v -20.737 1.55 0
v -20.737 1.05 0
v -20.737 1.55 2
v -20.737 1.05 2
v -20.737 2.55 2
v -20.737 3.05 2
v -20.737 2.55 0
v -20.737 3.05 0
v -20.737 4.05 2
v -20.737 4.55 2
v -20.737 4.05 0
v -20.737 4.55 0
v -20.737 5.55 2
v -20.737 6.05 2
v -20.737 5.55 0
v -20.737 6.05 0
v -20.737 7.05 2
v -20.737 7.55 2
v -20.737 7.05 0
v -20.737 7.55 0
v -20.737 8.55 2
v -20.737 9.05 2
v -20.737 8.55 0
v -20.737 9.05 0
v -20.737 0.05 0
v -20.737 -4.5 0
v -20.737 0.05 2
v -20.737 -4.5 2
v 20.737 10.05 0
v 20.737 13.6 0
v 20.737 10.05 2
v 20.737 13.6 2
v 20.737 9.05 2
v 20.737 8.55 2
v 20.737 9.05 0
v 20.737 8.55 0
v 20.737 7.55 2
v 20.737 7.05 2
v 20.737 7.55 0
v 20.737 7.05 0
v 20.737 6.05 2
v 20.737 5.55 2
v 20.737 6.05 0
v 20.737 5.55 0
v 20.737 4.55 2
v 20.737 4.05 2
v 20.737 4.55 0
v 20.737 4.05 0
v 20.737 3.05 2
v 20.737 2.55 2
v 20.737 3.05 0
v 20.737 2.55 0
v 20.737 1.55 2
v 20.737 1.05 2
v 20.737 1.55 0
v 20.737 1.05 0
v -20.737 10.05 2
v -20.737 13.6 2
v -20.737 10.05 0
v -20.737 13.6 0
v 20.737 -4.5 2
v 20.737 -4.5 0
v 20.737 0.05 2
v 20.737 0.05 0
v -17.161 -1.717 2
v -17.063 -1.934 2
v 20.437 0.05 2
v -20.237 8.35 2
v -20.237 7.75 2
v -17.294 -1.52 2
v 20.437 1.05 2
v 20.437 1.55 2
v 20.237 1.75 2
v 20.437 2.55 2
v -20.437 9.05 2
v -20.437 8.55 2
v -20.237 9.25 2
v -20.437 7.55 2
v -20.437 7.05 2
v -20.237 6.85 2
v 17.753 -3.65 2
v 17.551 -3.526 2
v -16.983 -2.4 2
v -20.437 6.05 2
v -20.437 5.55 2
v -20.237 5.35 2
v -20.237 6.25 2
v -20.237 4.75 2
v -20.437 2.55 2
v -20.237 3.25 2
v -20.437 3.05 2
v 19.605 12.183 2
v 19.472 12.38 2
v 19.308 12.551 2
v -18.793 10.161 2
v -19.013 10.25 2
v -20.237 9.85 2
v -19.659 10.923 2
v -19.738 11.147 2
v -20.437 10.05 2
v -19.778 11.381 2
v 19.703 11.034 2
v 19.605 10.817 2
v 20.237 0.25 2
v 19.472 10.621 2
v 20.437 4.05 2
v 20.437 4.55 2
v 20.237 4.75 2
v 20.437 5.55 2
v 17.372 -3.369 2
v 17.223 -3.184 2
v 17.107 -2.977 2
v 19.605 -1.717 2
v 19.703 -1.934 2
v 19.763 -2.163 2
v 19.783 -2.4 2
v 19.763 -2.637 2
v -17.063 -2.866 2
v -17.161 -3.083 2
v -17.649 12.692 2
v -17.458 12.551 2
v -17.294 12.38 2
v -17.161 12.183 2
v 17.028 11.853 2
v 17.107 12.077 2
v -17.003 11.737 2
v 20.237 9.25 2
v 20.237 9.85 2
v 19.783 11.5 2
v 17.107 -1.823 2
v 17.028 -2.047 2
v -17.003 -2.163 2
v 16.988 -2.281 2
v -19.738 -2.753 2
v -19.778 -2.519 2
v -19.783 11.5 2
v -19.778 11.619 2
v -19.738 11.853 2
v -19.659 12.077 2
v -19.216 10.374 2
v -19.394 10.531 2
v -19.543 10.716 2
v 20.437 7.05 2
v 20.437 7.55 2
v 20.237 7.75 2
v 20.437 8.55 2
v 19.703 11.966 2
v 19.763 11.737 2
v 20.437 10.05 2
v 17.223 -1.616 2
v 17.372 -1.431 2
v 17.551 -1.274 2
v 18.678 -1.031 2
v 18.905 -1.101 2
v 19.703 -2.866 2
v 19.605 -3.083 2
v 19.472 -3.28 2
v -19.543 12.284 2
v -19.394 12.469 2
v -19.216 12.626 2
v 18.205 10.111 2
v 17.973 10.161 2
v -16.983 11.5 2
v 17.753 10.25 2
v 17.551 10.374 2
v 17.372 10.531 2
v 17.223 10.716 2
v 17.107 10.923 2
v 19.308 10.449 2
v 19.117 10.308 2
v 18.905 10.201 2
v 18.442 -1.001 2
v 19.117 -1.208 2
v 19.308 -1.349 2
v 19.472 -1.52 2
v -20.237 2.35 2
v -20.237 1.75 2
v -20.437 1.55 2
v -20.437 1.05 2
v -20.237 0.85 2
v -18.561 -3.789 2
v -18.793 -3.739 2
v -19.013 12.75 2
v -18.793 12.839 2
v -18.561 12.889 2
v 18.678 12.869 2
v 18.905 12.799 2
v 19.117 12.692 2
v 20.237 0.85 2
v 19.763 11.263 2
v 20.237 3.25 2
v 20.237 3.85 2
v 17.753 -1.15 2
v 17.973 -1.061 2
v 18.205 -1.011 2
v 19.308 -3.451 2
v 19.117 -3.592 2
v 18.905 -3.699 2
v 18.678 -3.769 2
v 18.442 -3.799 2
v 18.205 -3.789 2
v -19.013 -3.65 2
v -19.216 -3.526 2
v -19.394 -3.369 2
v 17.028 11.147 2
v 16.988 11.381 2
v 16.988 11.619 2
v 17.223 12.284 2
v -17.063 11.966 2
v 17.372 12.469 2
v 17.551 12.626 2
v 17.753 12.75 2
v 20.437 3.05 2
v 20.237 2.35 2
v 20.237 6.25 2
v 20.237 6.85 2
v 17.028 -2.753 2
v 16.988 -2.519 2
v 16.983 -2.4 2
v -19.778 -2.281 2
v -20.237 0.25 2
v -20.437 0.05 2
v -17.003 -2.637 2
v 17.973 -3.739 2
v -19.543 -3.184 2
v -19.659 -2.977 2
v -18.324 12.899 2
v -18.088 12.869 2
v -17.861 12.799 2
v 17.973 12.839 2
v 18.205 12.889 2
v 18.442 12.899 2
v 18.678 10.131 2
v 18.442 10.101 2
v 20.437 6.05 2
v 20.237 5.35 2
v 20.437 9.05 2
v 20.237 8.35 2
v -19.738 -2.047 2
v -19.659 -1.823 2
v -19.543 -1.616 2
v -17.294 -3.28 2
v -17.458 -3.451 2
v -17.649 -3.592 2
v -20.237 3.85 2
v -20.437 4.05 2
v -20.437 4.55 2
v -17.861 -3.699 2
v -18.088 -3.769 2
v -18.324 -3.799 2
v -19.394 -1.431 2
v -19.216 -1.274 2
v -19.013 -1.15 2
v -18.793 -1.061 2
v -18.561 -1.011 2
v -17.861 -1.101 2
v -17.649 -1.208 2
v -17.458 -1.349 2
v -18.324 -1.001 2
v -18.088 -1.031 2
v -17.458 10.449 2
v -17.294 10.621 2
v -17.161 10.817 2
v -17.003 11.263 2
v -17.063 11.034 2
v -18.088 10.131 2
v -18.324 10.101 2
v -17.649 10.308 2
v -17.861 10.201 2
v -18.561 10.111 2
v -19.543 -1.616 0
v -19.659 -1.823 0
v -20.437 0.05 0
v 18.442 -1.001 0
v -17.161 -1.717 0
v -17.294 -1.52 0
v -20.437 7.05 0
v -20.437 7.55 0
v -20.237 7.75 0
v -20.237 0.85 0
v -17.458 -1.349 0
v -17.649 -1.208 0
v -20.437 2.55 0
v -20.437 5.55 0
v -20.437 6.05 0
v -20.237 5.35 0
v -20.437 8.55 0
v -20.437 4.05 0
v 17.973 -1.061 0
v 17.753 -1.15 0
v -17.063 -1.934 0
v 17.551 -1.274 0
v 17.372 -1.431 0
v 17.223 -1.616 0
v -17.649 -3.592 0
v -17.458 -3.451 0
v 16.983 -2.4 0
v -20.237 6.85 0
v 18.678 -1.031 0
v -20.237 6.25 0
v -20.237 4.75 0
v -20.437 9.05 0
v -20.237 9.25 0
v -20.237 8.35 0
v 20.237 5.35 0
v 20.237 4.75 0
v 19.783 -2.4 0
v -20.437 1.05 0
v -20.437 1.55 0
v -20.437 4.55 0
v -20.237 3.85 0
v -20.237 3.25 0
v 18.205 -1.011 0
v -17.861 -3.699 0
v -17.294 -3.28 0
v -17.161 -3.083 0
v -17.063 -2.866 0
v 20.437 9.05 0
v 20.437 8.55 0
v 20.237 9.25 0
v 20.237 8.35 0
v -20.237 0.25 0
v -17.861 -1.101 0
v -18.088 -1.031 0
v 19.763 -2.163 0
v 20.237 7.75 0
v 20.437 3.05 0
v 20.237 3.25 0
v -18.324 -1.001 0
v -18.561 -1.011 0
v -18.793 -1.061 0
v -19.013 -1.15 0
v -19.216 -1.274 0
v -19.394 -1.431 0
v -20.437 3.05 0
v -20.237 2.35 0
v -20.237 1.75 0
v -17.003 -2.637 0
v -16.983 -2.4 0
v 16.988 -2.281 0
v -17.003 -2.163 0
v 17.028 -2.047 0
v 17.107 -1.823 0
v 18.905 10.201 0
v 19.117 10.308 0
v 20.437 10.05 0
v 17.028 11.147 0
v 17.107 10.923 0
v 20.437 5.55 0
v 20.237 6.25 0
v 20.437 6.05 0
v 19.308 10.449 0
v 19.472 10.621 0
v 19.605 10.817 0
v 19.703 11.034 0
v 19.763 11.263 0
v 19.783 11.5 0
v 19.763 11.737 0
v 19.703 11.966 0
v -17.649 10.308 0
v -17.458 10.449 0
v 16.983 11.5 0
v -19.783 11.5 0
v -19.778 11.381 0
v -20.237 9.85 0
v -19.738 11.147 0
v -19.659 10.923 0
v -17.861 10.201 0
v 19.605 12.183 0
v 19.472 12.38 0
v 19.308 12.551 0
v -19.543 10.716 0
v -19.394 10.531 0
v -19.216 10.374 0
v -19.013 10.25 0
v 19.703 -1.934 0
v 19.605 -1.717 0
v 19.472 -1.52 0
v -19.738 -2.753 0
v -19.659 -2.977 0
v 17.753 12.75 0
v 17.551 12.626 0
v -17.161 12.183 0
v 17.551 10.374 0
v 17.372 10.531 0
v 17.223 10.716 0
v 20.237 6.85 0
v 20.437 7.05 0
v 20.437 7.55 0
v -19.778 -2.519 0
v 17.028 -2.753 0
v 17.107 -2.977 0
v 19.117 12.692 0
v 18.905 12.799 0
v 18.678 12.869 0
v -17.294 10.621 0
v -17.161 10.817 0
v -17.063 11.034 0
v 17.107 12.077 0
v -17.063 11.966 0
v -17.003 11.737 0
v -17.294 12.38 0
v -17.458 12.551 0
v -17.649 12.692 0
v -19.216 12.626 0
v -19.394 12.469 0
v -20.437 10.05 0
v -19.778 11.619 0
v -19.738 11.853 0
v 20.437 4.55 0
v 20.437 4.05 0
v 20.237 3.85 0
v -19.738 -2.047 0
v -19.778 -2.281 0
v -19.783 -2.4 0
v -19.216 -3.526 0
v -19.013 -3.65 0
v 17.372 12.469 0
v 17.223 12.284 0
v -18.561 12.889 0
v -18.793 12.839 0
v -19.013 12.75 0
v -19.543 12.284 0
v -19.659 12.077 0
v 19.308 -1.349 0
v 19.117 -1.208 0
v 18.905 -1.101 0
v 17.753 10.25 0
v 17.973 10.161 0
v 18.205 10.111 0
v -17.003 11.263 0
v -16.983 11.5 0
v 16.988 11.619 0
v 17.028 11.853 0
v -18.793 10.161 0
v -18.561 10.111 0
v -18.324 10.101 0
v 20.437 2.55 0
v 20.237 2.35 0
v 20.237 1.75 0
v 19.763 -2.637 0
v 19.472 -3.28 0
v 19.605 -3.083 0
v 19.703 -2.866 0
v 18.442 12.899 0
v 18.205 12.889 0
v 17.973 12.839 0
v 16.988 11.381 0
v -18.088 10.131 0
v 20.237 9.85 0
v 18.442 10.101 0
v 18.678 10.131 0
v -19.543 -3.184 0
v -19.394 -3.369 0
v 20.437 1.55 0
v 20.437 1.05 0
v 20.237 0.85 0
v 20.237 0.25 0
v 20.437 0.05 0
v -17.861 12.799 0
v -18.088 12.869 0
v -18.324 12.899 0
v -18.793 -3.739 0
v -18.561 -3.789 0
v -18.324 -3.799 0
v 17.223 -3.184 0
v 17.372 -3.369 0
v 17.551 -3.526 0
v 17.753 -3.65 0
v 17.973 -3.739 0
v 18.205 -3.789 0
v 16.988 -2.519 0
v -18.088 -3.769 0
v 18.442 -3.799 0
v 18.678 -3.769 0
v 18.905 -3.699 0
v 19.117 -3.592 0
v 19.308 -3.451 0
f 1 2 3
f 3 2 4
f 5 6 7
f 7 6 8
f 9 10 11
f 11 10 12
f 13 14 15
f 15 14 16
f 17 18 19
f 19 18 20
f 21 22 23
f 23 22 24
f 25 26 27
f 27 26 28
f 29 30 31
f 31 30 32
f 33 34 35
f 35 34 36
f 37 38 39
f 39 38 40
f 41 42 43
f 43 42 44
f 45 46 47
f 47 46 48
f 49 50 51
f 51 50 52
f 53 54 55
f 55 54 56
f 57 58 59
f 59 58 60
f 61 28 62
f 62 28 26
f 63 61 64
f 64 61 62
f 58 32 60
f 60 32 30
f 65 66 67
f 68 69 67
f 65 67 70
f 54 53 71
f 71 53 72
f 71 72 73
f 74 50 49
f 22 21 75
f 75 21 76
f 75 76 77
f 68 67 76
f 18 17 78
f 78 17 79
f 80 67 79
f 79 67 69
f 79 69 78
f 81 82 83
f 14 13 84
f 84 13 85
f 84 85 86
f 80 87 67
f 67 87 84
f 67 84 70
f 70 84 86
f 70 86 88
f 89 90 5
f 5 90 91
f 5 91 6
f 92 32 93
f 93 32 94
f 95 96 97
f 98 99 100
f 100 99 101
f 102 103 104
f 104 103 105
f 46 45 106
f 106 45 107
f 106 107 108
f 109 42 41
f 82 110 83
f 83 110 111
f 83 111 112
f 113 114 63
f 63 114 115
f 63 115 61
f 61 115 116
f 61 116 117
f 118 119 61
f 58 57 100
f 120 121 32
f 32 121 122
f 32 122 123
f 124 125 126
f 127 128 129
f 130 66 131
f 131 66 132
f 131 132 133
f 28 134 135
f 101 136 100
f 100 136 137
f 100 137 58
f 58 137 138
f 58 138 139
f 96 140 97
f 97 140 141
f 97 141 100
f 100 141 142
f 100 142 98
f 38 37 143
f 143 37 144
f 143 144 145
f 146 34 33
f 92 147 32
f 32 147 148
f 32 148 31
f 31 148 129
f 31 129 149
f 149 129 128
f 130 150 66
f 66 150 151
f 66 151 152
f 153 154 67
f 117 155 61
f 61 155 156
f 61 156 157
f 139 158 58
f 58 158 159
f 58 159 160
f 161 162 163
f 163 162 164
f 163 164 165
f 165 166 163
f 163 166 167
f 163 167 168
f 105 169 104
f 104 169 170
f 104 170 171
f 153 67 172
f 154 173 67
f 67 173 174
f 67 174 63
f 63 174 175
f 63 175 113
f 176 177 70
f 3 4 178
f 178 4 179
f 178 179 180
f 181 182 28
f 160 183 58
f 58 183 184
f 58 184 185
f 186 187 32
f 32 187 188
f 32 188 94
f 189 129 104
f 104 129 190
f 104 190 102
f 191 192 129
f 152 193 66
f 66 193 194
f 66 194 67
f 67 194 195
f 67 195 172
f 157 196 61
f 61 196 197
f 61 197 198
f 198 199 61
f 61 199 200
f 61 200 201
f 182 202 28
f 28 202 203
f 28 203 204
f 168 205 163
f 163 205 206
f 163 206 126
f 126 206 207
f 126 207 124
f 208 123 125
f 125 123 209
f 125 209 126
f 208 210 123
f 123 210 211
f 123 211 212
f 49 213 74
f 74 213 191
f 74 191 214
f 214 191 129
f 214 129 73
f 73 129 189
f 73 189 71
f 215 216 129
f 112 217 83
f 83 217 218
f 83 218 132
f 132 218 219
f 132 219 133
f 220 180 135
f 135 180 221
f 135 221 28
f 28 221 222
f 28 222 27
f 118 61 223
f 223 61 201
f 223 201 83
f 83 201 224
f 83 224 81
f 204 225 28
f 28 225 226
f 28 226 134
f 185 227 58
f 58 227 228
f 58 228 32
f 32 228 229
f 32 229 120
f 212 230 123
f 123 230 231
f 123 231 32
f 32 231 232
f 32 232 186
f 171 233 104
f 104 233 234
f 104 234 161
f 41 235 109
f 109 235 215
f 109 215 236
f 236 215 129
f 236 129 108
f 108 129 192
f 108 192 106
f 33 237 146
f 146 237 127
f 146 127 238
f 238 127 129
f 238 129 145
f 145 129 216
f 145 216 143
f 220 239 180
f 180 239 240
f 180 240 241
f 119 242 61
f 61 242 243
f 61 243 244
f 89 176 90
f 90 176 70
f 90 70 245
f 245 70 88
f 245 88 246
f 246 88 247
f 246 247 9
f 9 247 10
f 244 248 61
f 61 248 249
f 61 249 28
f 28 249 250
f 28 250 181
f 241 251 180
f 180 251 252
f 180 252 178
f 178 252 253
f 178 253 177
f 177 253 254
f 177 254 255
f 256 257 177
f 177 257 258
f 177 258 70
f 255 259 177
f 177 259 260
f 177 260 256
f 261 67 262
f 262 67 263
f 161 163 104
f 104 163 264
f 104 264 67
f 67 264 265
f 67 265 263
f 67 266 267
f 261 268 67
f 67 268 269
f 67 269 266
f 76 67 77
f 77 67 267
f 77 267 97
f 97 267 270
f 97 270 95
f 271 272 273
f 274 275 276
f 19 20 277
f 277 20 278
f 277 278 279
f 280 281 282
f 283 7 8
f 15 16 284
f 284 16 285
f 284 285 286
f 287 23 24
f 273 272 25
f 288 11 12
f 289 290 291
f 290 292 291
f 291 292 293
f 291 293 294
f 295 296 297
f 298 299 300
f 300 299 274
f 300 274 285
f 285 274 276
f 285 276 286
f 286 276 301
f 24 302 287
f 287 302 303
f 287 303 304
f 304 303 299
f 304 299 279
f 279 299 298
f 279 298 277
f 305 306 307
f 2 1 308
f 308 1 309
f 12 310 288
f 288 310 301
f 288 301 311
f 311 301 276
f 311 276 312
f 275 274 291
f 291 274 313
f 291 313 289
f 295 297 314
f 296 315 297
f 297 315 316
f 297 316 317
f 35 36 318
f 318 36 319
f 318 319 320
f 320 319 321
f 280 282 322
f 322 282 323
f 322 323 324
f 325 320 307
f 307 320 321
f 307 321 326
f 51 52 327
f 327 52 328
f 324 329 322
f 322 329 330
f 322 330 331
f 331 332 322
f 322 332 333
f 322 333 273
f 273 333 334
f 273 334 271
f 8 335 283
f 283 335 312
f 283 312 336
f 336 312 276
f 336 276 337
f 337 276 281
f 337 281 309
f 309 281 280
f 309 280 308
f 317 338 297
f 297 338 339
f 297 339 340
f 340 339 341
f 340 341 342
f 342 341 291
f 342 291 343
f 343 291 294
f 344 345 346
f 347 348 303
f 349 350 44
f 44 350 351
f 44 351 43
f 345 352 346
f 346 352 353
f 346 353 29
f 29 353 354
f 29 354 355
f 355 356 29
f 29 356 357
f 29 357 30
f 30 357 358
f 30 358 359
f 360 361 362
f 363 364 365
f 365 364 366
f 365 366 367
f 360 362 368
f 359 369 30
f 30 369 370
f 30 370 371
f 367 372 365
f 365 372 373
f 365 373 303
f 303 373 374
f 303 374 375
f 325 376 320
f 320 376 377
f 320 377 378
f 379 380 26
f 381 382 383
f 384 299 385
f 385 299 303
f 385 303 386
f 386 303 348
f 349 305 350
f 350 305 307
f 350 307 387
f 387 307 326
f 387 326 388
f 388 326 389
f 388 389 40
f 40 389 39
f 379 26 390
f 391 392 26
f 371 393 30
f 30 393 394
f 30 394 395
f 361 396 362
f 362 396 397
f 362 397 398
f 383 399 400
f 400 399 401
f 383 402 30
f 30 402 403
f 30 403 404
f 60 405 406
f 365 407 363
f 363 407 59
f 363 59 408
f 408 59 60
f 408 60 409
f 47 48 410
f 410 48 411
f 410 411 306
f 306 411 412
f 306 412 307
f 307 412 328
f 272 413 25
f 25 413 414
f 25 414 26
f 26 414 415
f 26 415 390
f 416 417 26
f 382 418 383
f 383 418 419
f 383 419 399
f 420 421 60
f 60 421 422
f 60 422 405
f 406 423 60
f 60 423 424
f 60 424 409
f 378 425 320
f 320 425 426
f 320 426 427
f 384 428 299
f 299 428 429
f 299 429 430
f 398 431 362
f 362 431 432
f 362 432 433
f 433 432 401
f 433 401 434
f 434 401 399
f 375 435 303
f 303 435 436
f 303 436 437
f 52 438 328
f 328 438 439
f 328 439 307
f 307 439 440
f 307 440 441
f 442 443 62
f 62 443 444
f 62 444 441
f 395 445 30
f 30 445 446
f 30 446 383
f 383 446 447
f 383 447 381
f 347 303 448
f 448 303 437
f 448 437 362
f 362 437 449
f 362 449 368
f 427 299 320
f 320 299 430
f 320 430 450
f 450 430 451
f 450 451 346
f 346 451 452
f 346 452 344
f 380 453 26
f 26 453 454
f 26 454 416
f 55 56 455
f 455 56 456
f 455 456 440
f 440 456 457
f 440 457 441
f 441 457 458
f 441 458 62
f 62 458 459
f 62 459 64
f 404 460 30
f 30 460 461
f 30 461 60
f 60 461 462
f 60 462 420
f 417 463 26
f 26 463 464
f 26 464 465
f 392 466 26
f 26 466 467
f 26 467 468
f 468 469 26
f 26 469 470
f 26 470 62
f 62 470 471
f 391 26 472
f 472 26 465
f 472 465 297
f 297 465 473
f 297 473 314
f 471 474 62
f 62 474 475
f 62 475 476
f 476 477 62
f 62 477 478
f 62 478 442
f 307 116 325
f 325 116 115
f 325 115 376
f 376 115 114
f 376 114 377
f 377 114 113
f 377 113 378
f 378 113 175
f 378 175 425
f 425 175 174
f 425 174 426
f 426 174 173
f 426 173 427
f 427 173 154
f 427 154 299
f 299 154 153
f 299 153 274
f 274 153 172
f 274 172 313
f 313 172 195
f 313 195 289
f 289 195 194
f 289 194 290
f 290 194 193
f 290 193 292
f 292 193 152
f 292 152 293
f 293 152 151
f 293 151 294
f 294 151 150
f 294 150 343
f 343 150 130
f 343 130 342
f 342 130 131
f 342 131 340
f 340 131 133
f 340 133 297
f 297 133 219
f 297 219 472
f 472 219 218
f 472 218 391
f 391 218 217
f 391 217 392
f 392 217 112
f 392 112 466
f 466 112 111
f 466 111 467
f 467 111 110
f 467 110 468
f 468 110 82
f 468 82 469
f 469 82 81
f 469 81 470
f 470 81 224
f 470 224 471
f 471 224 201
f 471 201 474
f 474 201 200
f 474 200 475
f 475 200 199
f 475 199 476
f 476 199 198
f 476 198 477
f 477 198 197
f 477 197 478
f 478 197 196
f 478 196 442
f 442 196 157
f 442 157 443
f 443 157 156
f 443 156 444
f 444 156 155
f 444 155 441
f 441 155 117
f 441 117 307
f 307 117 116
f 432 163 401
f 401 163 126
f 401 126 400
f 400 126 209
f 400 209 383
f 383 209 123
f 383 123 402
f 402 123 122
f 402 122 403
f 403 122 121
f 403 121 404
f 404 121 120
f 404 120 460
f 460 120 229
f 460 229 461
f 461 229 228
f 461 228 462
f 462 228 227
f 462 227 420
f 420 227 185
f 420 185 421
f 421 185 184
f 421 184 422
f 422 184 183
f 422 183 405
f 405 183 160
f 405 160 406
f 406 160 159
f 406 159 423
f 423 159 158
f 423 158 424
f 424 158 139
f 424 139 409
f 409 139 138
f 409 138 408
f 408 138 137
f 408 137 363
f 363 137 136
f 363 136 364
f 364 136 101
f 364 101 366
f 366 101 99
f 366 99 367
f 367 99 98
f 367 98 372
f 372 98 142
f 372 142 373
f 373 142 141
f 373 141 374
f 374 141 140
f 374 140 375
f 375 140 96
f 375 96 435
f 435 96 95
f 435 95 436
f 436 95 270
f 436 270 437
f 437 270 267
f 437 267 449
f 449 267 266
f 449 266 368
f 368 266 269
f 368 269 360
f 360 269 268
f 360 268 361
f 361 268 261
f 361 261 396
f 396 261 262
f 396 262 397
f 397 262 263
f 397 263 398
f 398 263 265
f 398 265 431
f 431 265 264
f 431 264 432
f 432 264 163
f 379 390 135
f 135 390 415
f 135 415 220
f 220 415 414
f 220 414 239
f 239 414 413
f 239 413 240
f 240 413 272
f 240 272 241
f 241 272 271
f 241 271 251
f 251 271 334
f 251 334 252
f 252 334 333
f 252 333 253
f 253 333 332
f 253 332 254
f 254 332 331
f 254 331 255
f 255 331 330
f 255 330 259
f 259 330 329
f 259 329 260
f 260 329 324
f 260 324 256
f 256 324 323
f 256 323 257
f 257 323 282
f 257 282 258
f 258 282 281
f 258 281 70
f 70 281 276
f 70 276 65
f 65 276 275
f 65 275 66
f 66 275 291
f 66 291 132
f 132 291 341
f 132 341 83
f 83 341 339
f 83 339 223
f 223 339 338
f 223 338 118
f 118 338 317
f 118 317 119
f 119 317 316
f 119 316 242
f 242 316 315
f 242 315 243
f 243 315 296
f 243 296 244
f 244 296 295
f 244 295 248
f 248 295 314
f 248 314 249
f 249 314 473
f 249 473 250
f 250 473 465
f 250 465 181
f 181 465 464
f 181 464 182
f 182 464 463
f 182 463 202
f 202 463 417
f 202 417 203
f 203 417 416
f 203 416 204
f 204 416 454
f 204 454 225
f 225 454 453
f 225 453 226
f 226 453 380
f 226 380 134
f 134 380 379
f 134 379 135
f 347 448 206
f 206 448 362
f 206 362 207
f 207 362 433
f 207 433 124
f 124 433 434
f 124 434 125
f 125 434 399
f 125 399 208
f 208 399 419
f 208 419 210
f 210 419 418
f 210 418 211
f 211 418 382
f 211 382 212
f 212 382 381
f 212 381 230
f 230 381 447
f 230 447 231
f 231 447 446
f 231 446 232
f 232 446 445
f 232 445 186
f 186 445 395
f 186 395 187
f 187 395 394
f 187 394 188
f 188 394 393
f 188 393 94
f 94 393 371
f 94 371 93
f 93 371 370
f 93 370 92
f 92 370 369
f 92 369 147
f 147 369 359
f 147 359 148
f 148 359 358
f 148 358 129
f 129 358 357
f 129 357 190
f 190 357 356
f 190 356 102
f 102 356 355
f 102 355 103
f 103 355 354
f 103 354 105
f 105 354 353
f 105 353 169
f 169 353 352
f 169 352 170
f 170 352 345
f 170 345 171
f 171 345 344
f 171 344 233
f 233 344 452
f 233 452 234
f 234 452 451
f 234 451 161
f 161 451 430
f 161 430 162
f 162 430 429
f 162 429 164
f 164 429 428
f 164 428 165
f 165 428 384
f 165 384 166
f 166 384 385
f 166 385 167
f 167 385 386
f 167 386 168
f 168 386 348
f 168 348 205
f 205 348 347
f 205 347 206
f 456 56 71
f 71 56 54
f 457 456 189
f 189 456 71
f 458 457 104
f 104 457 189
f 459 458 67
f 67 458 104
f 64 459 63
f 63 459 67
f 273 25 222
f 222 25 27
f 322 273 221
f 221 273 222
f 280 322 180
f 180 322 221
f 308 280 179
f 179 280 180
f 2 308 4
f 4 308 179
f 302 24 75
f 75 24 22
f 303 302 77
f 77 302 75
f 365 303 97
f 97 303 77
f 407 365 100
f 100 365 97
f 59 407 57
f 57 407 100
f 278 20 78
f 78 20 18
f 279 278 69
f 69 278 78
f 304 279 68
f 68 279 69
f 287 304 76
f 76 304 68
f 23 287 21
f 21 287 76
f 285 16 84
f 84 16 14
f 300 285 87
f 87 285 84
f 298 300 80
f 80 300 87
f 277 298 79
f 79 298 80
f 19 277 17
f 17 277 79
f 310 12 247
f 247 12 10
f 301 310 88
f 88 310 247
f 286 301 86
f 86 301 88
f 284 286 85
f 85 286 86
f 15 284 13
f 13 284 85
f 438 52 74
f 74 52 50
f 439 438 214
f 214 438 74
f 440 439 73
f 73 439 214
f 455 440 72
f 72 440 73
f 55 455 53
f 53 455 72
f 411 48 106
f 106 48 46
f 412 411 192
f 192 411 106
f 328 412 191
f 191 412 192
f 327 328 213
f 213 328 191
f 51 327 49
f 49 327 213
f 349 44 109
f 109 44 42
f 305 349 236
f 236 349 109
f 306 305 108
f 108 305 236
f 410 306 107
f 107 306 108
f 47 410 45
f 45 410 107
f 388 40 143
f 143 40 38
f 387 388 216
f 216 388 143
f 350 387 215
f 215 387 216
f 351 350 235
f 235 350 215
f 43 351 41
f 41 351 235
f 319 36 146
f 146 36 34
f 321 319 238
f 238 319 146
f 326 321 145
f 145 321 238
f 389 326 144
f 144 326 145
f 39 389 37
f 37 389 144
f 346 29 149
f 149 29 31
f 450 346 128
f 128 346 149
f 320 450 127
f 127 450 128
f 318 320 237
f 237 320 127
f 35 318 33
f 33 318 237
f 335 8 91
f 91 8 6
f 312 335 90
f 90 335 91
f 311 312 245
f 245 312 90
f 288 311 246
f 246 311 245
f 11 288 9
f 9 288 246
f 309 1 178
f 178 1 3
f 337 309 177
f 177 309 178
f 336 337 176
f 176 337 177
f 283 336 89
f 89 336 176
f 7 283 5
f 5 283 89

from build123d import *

# Parameters (mm, degrees)
SKETCH_1_W          = 41.47467615
SKETCH_1_H          = 18.100023376
EXTRUDE_1_DEPTH     = 2
CUT_EXTRUDE_1_REACH = 26.88
SKETCH_2_R          = 1.4
CUT_EXTRUDE_2_REACH = 26.88


with BuildPart() as part:
    # 草图1 → 凸台-拉伸1 (new body)
    with BuildSketch(Plane.XY):
        with Locations((0, 4.550011688)):
            Rectangle(SKETCH_1_W, SKETCH_1_H)
    extrude(amount=EXTRUDE_1_DEPTH)

    # 草图2 → 切除-拉伸1 (cut, up to next)
    with BuildSketch(Plane.XY.offset(2), mode=Mode.PRIVATE) as cut_extrude_1_sk1:
        with Locations((-18.383061341, -2.4)):
            Circle(SKETCH_2_R)
    cut_extrude_1_tool1 = extrude(cut_extrude_1_sk1.sketch, amount=-CUT_EXTRUDE_1_REACH, mode=Mode.PRIVATE) & part.part
    # 草图2 → 切除-拉伸1 (cut, up to next)
    with BuildSketch(Plane.XY.offset(2), mode=Mode.PRIVATE) as cut_extrude_1_sk2:
        with Locations(Location((18.383061341, -2.4, 0), (0, 0, 180))):
            Circle(SKETCH_2_R)
    cut_extrude_1_tool2 = extrude(cut_extrude_1_sk2.sketch, amount=-CUT_EXTRUDE_1_REACH, mode=Mode.PRIVATE) & part.part
    # 草图2 → 切除-拉伸1 (cut, up to next)
    with BuildSketch(Plane.XY.offset(2), mode=Mode.PRIVATE) as cut_extrude_1_sk3:
        with Locations((18.383061341, 11.500023376)):
            Circle(SKETCH_2_R)
    cut_extrude_1_tool3 = extrude(cut_extrude_1_sk3.sketch, amount=-CUT_EXTRUDE_1_REACH, mode=Mode.PRIVATE) & part.part
    # 草图2 → 切除-拉伸1 (cut, up to next)
    with BuildSketch(Plane.XY.offset(2), mode=Mode.PRIVATE) as cut_extrude_1_sk4:
        with Locations(Location((-18.383061341, 11.500023376, 0), (0, 0, 180))):
            Circle(SKETCH_2_R)
    cut_extrude_1_tool4 = extrude(cut_extrude_1_sk4.sketch, amount=-CUT_EXTRUDE_1_REACH, mode=Mode.PRIVATE) & part.part
    add(cut_extrude_1_tool1.solids().sort_by_distance((-18.383061, -2.4, 2))[0], mode=Mode.SUBTRACT)
    add(cut_extrude_1_tool2.solids().sort_by_distance((18.383061, -2.4, 2))[0], mode=Mode.SUBTRACT)
    add(cut_extrude_1_tool3.solids().sort_by_distance((18.383061, 11.500023, 2))[0], mode=Mode.SUBTRACT)
    add(cut_extrude_1_tool4.solids().sort_by_distance((-18.383061, 11.500023, 2))[0], mode=Mode.SUBTRACT)

    # 草图3 → 切除-拉伸2 (cut, up to next)
    with BuildSketch(Plane(origin=(0, 0, 0), x_dir=(-1, 0, 0), z_dir=(0, 0, -1)), mode=Mode.PRIVATE) as cut_extrude_2_sk1:
        Polygon((-20.737338075, 1.050011688), (-20.437338075, 1.050011688), (-20.237338075, 0.850011688), (-20.237338075, 0.250011688), (-20.437338075, 0.050011688), (-20.737338075, 0.050011688), align=None)
    cut_extrude_2_tool1 = extrude(cut_extrude_2_sk1.sketch, amount=-CUT_EXTRUDE_2_REACH, mode=Mode.PRIVATE) & part.part
    # 草图3 → 切除-拉伸2 (cut, up to next)
    with BuildSketch(Plane(origin=(0, 0, 0), x_dir=(-1, 0, 0), z_dir=(0, 0, -1)), mode=Mode.PRIVATE) as cut_extrude_2_sk2:
        Polygon((-20.737338075, 2.550011688), (-20.437338075, 2.550011688), (-20.237338075, 2.350011688), (-20.237338075, 1.750011688), (-20.437338075, 1.550011688), (-20.737338075, 1.550011688), align=None)
    cut_extrude_2_tool2 = extrude(cut_extrude_2_sk2.sketch, amount=-CUT_EXTRUDE_2_REACH, mode=Mode.PRIVATE) & part.part
    # 草图3 → 切除-拉伸2 (cut, up to next)
    with BuildSketch(Plane(origin=(0, 0, 0), x_dir=(-1, 0, 0), z_dir=(0, 0, -1)), mode=Mode.PRIVATE) as cut_extrude_2_sk3:
        Polygon((-20.737338075, 4.050011688), (-20.437338075, 4.050011688), (-20.237338075, 3.850011688), (-20.237338075, 3.250011688), (-20.437338075, 3.050011688), (-20.737338075, 3.050011688), align=None)
    cut_extrude_2_tool3 = extrude(cut_extrude_2_sk3.sketch, amount=-CUT_EXTRUDE_2_REACH, mode=Mode.PRIVATE) & part.part
    # 草图3 → 切除-拉伸2 (cut, up to next)
    with BuildSketch(Plane(origin=(0, 0, 0), x_dir=(-1, 0, 0), z_dir=(0, 0, -1)), mode=Mode.PRIVATE) as cut_extrude_2_sk4:
        Polygon((-20.737338075, 5.550011688), (-20.437338075, 5.550011688), (-20.237338075, 5.350011688), (-20.237338075, 4.750011688), (-20.437338075, 4.550011688), (-20.737338075, 4.550011688), align=None)
    cut_extrude_2_tool4 = extrude(cut_extrude_2_sk4.sketch, amount=-CUT_EXTRUDE_2_REACH, mode=Mode.PRIVATE) & part.part
    # 草图3 → 切除-拉伸2 (cut, up to next)
    with BuildSketch(Plane(origin=(0, 0, 0), x_dir=(-1, 0, 0), z_dir=(0, 0, -1)), mode=Mode.PRIVATE) as cut_extrude_2_sk5:
        Polygon((-20.737338075, 7.050011688), (-20.437338075, 7.050011688), (-20.237338075, 6.850011688), (-20.237338075, 6.250011688), (-20.437338075, 6.050011688), (-20.737338075, 6.050011688), align=None)
    cut_extrude_2_tool5 = extrude(cut_extrude_2_sk5.sketch, amount=-CUT_EXTRUDE_2_REACH, mode=Mode.PRIVATE) & part.part
    # 草图3 → 切除-拉伸2 (cut, up to next)
    with BuildSketch(Plane(origin=(0, 0, 0), x_dir=(-1, 0, 0), z_dir=(0, 0, -1)), mode=Mode.PRIVATE) as cut_extrude_2_sk6:
        Polygon((-20.737338075, 8.550011688), (-20.437338075, 8.550011688), (-20.237338075, 8.350011688), (-20.237338075, 7.750011688), (-20.437338075, 7.550011688), (-20.737338075, 7.550011688), align=None)
    cut_extrude_2_tool6 = extrude(cut_extrude_2_sk6.sketch, amount=-CUT_EXTRUDE_2_REACH, mode=Mode.PRIVATE) & part.part
    # 草图3 → 切除-拉伸2 (cut, up to next)
    with BuildSketch(Plane(origin=(0, 0, 0), x_dir=(-1, 0, 0), z_dir=(0, 0, -1)), mode=Mode.PRIVATE) as cut_extrude_2_sk7:
        Polygon((-20.737338075, 10.050011688), (-20.437338075, 10.050011688), (-20.237338075, 9.850011688), (-20.237338075, 9.250011688), (-20.437338075, 9.050011688), (-20.737338075, 9.050011688), align=None)
    cut_extrude_2_tool7 = extrude(cut_extrude_2_sk7.sketch, amount=-CUT_EXTRUDE_2_REACH, mode=Mode.PRIVATE) & part.part
    # 草图3 → 切除-拉伸2 (cut, up to next)
    with BuildSketch(Plane(origin=(0, 0, 0), x_dir=(-1, 0, 0), z_dir=(0, 0, -1)), mode=Mode.PRIVATE) as cut_extrude_2_sk8:
        Polygon((20.737338075, 3.050011688), (20.737338075, 4.050011688), (20.437338075, 4.050011688), (20.237338075, 3.850011688), (20.237338075, 3.250011688), (20.437338075, 3.050011688), align=None)
    cut_extrude_2_tool8 = extrude(cut_extrude_2_sk8.sketch, amount=-CUT_EXTRUDE_2_REACH, mode=Mode.PRIVATE) & part.part
    # 草图3 → 切除-拉伸2 (cut, up to next)
    with BuildSketch(Plane(origin=(0, 0, 0), x_dir=(-1, 0, 0), z_dir=(0, 0, -1)), mode=Mode.PRIVATE) as cut_extrude_2_sk9:
        Polygon((20.737338075, 1.550011688), (20.737338075, 2.550011688), (20.437338075, 2.550011688), (20.237338075, 2.350011688), (20.237338075, 1.750011688), (20.437338075, 1.550011688), align=None)
    cut_extrude_2_tool9 = extrude(cut_extrude_2_sk9.sketch, amount=-CUT_EXTRUDE_2_REACH, mode=Mode.PRIVATE) & part.part
    # 草图3 → 切除-拉伸2 (cut, up to next)
    with BuildSketch(Plane(origin=(0, 0, 0), x_dir=(-1, 0, 0), z_dir=(0, 0, -1)), mode=Mode.PRIVATE) as cut_extrude_2_sk10:
        Polygon((20.737338075, 4.550011688), (20.737338075, 5.550011688), (20.437338075, 5.550011688), (20.237338075, 5.350011688), (20.237338075, 4.750011688), (20.437338075, 4.550011688), align=None)
    cut_extrude_2_tool10 = extrude(cut_extrude_2_sk10.sketch, amount=-CUT_EXTRUDE_2_REACH, mode=Mode.PRIVATE) & part.part
    # 草图3 → 切除-拉伸2 (cut, up to next)
    with BuildSketch(Plane(origin=(0, 0, 0), x_dir=(-1, 0, 0), z_dir=(0, 0, -1)), mode=Mode.PRIVATE) as cut_extrude_2_sk11:
        Polygon((20.737338075, 6.050011688), (20.737338075, 7.050011688), (20.437338075, 7.050011688), (20.237338075, 6.850011688), (20.237338075, 6.250011688), (20.437338075, 6.050011688), align=None)
    cut_extrude_2_tool11 = extrude(cut_extrude_2_sk11.sketch, amount=-CUT_EXTRUDE_2_REACH, mode=Mode.PRIVATE) & part.part
    # 草图3 → 切除-拉伸2 (cut, up to next)
    with BuildSketch(Plane(origin=(0, 0, 0), x_dir=(-1, 0, 0), z_dir=(0, 0, -1)), mode=Mode.PRIVATE) as cut_extrude_2_sk12:
        Polygon((20.737338075, 7.550011688), (20.737338075, 8.550011688), (20.437338075, 8.550011688), (20.237338075, 8.350011688), (20.237338075, 7.750011688), (20.437338075, 7.550011688), align=None)
    cut_extrude_2_tool12 = extrude(cut_extrude_2_sk12.sketch, amount=-CUT_EXTRUDE_2_REACH, mode=Mode.PRIVATE) & part.part
    # 草图3 → 切除-拉伸2 (cut, up to next)
    with BuildSketch(Plane(origin=(0, 0, 0), x_dir=(-1, 0, 0), z_dir=(0, 0, -1)), mode=Mode.PRIVATE) as cut_extrude_2_sk13:
        Polygon((20.737338075, 9.050011688), (20.737338075, 10.050011688), (20.437338075, 10.050011688), (20.237338075, 9.850011688), (20.237338075, 9.250011688), (20.437338075, 9.050011688), align=None)
    cut_extrude_2_tool13 = extrude(cut_extrude_2_sk13.sketch, amount=-CUT_EXTRUDE_2_REACH, mode=Mode.PRIVATE) & part.part
    # 草图3 → 切除-拉伸2 (cut, up to next)
    with BuildSketch(Plane(origin=(0, 0, 0), x_dir=(-1, 0, 0), z_dir=(0, 0, -1)), mode=Mode.PRIVATE) as cut_extrude_2_sk14:
        Polygon((20.737338075, 0.050011688), (20.737338075, 1.050011688), (20.437338075, 1.050011688), (20.237338075, 0.850011688), (20.237338075, 0.250011688), (20.437338075, 0.050011688), align=None)
    cut_extrude_2_tool14 = extrude(cut_extrude_2_sk14.sketch, amount=-CUT_EXTRUDE_2_REACH, mode=Mode.PRIVATE) & part.part
    add(cut_extrude_2_tool1.solids().sort_by_distance((20.50328, 0.550012, 0))[0], mode=Mode.SUBTRACT)
    add(cut_extrude_2_tool2.solids().sort_by_distance((20.50328, 2.050012, 0))[0], mode=Mode.SUBTRACT)
    add(cut_extrude_2_tool3.solids().sort_by_distance((20.50328, 3.550012, 0))[0], mode=Mode.SUBTRACT)
    add(cut_extrude_2_tool4.solids().sort_by_distance((20.50328, 5.050012, 0))[0], mode=Mode.SUBTRACT)
    add(cut_extrude_2_tool5.solids().sort_by_distance((20.50328, 6.550012, 0))[0], mode=Mode.SUBTRACT)
    add(cut_extrude_2_tool6.solids().sort_by_distance((20.50328, 8.050012, 0))[0], mode=Mode.SUBTRACT)
    add(cut_extrude_2_tool7.solids().sort_by_distance((20.50328, 9.550012, 0))[0], mode=Mode.SUBTRACT)
    add(cut_extrude_2_tool8.solids().sort_by_distance((-20.50328, 3.550012, 0))[0], mode=Mode.SUBTRACT)
    add(cut_extrude_2_tool9.solids().sort_by_distance((-20.50328, 2.050012, 0))[0], mode=Mode.SUBTRACT)
    add(cut_extrude_2_tool10.solids().sort_by_distance((-20.50328, 5.050012, 0))[0], mode=Mode.SUBTRACT)
    add(cut_extrude_2_tool11.solids().sort_by_distance((-20.50328, 6.550012, 0))[0], mode=Mode.SUBTRACT)
    add(cut_extrude_2_tool12.solids().sort_by_distance((-20.50328, 8.050012, 0))[0], mode=Mode.SUBTRACT)
    add(cut_extrude_2_tool13.solids().sort_by_distance((-20.50328, 9.550012, 0))[0], mode=Mode.SUBTRACT)
    add(cut_extrude_2_tool14.solids().sort_by_distance((-20.50328, 0.550012, 0))[0], mode=Mode.SUBTRACT)


solid = part.part
